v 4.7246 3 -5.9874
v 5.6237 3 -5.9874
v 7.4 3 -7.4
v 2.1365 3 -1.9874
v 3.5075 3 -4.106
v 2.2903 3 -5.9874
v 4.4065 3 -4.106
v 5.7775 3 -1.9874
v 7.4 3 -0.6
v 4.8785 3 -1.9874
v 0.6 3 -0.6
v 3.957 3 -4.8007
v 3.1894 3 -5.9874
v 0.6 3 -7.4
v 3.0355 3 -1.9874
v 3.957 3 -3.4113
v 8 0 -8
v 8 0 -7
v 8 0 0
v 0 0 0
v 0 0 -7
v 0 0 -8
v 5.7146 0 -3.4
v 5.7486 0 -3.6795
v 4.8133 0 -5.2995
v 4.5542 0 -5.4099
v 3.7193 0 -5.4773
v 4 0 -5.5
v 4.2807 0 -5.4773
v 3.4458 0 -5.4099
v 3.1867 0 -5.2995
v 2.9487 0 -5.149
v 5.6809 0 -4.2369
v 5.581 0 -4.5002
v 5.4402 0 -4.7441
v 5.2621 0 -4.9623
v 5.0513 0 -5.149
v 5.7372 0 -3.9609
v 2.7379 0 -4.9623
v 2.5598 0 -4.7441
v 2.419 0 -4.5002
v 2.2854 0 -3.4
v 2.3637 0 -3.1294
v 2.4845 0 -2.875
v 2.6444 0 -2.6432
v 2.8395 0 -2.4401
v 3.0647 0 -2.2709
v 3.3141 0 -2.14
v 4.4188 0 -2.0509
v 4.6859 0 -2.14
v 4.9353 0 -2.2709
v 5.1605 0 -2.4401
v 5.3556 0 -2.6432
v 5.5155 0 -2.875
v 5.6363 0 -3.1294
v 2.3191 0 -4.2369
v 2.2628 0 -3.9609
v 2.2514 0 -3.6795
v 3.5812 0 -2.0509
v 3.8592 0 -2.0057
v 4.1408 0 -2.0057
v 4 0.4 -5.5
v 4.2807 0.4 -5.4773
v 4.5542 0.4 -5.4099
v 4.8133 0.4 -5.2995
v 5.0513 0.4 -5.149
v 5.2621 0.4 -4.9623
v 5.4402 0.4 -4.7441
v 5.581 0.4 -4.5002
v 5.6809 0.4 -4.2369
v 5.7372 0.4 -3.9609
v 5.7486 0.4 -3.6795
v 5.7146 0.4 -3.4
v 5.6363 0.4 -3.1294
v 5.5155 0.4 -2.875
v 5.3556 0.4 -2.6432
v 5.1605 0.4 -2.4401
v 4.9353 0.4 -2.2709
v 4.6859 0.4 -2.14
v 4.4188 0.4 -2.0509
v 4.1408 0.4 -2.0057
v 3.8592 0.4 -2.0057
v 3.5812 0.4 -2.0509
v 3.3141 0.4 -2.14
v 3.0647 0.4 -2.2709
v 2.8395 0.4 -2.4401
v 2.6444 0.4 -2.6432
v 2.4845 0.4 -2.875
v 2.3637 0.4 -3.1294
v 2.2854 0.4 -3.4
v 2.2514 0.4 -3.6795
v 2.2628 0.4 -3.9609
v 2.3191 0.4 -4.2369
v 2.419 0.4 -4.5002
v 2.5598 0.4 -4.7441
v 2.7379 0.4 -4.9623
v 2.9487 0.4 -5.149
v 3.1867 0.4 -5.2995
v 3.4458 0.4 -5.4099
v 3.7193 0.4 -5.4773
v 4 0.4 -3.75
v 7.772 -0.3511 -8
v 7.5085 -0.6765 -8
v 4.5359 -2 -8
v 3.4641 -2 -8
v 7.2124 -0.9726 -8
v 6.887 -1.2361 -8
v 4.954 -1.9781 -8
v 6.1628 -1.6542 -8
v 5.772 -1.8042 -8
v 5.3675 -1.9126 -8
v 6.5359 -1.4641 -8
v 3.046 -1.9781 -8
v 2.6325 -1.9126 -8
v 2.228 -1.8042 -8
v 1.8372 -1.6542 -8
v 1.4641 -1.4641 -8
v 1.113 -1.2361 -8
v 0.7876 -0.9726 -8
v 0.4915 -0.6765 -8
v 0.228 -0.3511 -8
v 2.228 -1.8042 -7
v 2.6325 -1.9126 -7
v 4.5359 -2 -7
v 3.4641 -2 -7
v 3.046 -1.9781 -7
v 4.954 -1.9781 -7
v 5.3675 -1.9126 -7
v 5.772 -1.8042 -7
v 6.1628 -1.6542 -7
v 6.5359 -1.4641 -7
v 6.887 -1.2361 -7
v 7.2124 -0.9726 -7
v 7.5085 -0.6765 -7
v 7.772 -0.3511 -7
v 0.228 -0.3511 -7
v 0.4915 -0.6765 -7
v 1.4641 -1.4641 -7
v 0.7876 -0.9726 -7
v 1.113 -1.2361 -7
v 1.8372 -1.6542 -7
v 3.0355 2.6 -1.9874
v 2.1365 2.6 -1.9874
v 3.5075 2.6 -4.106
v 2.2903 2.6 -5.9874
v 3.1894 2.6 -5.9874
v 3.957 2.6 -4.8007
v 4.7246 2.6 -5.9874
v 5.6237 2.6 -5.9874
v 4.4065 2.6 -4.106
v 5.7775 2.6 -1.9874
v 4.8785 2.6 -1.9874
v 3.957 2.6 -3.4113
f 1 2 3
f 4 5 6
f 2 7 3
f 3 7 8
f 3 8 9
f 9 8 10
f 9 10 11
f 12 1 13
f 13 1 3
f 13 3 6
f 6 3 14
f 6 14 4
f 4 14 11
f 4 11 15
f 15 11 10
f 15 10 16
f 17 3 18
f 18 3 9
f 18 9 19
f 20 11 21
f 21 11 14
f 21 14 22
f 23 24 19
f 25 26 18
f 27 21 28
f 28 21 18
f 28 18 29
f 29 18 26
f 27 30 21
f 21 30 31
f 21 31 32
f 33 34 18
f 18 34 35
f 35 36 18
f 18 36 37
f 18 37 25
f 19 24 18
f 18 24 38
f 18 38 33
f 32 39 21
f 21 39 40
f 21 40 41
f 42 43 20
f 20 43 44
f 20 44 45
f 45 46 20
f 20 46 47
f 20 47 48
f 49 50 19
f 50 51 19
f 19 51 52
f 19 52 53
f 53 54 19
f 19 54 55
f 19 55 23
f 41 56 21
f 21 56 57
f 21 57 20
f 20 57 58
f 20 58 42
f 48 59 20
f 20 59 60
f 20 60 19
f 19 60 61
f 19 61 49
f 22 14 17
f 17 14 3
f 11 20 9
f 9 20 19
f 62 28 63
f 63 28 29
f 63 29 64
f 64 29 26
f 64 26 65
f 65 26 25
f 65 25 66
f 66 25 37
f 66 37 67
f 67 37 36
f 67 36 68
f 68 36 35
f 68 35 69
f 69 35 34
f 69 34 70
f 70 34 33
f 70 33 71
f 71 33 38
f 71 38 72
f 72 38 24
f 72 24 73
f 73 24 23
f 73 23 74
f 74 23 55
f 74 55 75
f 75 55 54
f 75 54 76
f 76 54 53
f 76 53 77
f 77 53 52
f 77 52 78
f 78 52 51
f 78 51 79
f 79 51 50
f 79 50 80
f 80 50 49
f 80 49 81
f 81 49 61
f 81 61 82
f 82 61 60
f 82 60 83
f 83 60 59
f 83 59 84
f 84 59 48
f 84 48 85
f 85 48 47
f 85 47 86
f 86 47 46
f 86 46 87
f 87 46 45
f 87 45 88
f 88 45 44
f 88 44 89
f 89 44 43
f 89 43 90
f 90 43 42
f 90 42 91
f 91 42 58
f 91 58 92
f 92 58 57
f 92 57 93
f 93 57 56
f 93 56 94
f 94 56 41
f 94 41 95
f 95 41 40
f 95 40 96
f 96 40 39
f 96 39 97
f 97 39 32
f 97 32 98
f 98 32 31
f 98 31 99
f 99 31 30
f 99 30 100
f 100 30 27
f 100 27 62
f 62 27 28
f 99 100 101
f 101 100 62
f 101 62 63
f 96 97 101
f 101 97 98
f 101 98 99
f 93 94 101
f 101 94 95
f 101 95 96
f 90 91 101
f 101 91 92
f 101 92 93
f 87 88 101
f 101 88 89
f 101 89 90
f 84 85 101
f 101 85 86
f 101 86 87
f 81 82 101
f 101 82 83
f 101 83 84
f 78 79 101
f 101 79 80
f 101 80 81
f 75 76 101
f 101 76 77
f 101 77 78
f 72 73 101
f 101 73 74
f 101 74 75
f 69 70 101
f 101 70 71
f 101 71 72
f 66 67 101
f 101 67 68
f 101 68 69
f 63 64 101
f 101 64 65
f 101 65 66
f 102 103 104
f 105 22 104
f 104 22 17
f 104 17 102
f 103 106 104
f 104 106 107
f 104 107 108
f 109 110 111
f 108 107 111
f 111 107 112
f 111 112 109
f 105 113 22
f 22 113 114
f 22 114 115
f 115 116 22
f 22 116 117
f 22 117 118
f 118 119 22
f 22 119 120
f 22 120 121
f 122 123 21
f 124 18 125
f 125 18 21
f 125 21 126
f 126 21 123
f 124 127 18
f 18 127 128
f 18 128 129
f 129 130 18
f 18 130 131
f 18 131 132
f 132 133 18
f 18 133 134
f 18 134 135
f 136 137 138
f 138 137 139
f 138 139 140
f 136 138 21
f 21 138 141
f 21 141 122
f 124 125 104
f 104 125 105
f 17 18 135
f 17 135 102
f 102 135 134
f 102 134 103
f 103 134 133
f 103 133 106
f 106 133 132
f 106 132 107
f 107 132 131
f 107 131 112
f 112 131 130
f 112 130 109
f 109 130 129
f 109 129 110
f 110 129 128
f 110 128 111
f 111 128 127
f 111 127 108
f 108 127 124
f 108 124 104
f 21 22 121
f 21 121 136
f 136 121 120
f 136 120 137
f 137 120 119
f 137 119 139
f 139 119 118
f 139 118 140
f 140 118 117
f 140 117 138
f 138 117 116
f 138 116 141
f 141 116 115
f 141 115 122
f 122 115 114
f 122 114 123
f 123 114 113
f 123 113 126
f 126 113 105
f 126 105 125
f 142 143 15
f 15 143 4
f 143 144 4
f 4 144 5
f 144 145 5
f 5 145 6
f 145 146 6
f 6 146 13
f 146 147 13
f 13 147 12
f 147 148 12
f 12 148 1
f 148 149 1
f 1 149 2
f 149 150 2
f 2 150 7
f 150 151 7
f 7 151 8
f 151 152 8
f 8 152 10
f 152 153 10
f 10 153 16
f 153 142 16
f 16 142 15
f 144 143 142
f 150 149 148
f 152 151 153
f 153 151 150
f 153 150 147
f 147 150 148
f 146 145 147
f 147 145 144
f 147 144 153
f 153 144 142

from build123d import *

# Parameters (mm, degrees)
SKETCH1_W               = 8
SKETCH1_H               = 8
BOSS_EXTRUDE1_DEPTH     = 3
CUT_EXTRUDE1_DEPTH      = 12.704699911
CUT_EXTRUDE1_DEPTH_BACK = 12.704699911
CUT_EXTRUDE2_DEPTH      = 11
SKETCH4_R               = 1.75
CUT_EXTRUDE3_DEPTH      = 0.4
SKETCH5_W               = 8
SKETCH5_H               = 1
BOSS_EXTRUDE2_DEPTH     = 2
FILLET1_R               = 4
CUT_EXTRUDE4_DEPTH      = 0.4


with BuildPart() as part:
    # Sketch1 → Boss-Extrude1 (new body)
    with BuildSketch(Plane(origin=(0, 0, 0), x_dir=(1, 0, 0), z_dir=(0, 1, 0))):
        with Locations((4, 4)):
            Rectangle(SKETCH1_W, SKETCH1_H)
    extrude(amount=BOSS_EXTRUDE1_DEPTH)

    # Sketch2 → Cut-Extrude1 (cut, two sides: drawn at the far end of the back side and taken through both)
    with BuildSketch(Plane.XY.offset(-CUT_EXTRUDE1_DEPTH_BACK)):
        Polygon((0, 0), (0.6, 3), (0, 3), align=None)
        Polygon((8, 0), (7.4, 3), (8, 3), align=None)
    extrude(amount=CUT_EXTRUDE1_DEPTH + CUT_EXTRUDE1_DEPTH_BACK, mode=Mode.SUBTRACT)

    # Sketch3 → Cut-Extrude2 (cut)
    with BuildSketch(Plane(origin=(0, 0, 0), x_dir=(0, 0, -1), z_dir=(1, 0, 0))):
        Polygon((0, 0), (0.6, 3), (0, 3), align=None)
        Polygon((8, 3), (7.4, 3), (8, 0), align=None)
    extrude(amount=CUT_EXTRUDE2_DEPTH, mode=Mode.SUBTRACT)

    # Sketch4 → Cut-Extrude3 (cut)
    with BuildSketch(Plane.XZ):
        with Locations(Location((4, -3.75, 0), (0, 0, 270))):
            Circle(SKETCH4_R)
    extrude(amount=-CUT_EXTRUDE3_DEPTH, mode=Mode.SUBTRACT)

    # Sketch5 → Boss-Extrude2 (add)
    with BuildSketch(Plane.XZ):
        with Locations((4, -7.5)):
            Rectangle(SKETCH5_W, SKETCH5_H)
    extrude(amount=BOSS_EXTRUDE2_DEPTH)

    # Fillet1
    # the kernel refuses this fillet: 4 mm, written as the material it takes off along each edge
    with BuildSketch(Plane(origin=(8, -2, -16.660254038), x_dir=(0, 1, 0), z_dir=(0, 0, 1)), Plane(origin=(0, -2, 1.660254038), x_dir=(0, 1, 0), z_dir=(0, 0, -1))) as fillet1_piece_1:
        with BuildLine():
            CenterArc((4, 3.464101615), FILLET1_R, 180, 60)
            Line((0, 3.464101615), (-0.08, 3.464101615))
            Line((-0.08, 3.464101615), (-0.08, 0))
            Line((-0.08, 0), (0, -0.08))
            ThreePointArc((0, -0.08), (1, -0.08), (1.96, -0.069282032))
            Line((1.96, -0.069282032), (2, 0))
        make_face()
    extrude(amount=18.320508076, mode=Mode.SUBTRACT)

    # Sketch6 → Cut-Extrude4 (cut)
    with BuildSketch(Plane(origin=(0, 3, 0), x_dir=(1, 0, 0), z_dir=(0, 1, 0))):
        Polygon((2.136477101, 1.987434605), (3.507470691, 4.106024349), (2.290323255, 5.987434605), (3.189361717, 5.987434605), (3.956989922, 4.800735887), (4.724618127, 5.987434605), (5.623656589, 5.987434605), (4.406509153, 4.106024349), (5.777502742, 1.987434605), (4.878464281, 1.987434605), (3.956989922, 3.41131281), (3.035515563, 1.987434605), align=None)
    extrude(amount=-CUT_EXTRUDE4_DEPTH, mode=Mode.SUBTRACT)


solid = part.part
